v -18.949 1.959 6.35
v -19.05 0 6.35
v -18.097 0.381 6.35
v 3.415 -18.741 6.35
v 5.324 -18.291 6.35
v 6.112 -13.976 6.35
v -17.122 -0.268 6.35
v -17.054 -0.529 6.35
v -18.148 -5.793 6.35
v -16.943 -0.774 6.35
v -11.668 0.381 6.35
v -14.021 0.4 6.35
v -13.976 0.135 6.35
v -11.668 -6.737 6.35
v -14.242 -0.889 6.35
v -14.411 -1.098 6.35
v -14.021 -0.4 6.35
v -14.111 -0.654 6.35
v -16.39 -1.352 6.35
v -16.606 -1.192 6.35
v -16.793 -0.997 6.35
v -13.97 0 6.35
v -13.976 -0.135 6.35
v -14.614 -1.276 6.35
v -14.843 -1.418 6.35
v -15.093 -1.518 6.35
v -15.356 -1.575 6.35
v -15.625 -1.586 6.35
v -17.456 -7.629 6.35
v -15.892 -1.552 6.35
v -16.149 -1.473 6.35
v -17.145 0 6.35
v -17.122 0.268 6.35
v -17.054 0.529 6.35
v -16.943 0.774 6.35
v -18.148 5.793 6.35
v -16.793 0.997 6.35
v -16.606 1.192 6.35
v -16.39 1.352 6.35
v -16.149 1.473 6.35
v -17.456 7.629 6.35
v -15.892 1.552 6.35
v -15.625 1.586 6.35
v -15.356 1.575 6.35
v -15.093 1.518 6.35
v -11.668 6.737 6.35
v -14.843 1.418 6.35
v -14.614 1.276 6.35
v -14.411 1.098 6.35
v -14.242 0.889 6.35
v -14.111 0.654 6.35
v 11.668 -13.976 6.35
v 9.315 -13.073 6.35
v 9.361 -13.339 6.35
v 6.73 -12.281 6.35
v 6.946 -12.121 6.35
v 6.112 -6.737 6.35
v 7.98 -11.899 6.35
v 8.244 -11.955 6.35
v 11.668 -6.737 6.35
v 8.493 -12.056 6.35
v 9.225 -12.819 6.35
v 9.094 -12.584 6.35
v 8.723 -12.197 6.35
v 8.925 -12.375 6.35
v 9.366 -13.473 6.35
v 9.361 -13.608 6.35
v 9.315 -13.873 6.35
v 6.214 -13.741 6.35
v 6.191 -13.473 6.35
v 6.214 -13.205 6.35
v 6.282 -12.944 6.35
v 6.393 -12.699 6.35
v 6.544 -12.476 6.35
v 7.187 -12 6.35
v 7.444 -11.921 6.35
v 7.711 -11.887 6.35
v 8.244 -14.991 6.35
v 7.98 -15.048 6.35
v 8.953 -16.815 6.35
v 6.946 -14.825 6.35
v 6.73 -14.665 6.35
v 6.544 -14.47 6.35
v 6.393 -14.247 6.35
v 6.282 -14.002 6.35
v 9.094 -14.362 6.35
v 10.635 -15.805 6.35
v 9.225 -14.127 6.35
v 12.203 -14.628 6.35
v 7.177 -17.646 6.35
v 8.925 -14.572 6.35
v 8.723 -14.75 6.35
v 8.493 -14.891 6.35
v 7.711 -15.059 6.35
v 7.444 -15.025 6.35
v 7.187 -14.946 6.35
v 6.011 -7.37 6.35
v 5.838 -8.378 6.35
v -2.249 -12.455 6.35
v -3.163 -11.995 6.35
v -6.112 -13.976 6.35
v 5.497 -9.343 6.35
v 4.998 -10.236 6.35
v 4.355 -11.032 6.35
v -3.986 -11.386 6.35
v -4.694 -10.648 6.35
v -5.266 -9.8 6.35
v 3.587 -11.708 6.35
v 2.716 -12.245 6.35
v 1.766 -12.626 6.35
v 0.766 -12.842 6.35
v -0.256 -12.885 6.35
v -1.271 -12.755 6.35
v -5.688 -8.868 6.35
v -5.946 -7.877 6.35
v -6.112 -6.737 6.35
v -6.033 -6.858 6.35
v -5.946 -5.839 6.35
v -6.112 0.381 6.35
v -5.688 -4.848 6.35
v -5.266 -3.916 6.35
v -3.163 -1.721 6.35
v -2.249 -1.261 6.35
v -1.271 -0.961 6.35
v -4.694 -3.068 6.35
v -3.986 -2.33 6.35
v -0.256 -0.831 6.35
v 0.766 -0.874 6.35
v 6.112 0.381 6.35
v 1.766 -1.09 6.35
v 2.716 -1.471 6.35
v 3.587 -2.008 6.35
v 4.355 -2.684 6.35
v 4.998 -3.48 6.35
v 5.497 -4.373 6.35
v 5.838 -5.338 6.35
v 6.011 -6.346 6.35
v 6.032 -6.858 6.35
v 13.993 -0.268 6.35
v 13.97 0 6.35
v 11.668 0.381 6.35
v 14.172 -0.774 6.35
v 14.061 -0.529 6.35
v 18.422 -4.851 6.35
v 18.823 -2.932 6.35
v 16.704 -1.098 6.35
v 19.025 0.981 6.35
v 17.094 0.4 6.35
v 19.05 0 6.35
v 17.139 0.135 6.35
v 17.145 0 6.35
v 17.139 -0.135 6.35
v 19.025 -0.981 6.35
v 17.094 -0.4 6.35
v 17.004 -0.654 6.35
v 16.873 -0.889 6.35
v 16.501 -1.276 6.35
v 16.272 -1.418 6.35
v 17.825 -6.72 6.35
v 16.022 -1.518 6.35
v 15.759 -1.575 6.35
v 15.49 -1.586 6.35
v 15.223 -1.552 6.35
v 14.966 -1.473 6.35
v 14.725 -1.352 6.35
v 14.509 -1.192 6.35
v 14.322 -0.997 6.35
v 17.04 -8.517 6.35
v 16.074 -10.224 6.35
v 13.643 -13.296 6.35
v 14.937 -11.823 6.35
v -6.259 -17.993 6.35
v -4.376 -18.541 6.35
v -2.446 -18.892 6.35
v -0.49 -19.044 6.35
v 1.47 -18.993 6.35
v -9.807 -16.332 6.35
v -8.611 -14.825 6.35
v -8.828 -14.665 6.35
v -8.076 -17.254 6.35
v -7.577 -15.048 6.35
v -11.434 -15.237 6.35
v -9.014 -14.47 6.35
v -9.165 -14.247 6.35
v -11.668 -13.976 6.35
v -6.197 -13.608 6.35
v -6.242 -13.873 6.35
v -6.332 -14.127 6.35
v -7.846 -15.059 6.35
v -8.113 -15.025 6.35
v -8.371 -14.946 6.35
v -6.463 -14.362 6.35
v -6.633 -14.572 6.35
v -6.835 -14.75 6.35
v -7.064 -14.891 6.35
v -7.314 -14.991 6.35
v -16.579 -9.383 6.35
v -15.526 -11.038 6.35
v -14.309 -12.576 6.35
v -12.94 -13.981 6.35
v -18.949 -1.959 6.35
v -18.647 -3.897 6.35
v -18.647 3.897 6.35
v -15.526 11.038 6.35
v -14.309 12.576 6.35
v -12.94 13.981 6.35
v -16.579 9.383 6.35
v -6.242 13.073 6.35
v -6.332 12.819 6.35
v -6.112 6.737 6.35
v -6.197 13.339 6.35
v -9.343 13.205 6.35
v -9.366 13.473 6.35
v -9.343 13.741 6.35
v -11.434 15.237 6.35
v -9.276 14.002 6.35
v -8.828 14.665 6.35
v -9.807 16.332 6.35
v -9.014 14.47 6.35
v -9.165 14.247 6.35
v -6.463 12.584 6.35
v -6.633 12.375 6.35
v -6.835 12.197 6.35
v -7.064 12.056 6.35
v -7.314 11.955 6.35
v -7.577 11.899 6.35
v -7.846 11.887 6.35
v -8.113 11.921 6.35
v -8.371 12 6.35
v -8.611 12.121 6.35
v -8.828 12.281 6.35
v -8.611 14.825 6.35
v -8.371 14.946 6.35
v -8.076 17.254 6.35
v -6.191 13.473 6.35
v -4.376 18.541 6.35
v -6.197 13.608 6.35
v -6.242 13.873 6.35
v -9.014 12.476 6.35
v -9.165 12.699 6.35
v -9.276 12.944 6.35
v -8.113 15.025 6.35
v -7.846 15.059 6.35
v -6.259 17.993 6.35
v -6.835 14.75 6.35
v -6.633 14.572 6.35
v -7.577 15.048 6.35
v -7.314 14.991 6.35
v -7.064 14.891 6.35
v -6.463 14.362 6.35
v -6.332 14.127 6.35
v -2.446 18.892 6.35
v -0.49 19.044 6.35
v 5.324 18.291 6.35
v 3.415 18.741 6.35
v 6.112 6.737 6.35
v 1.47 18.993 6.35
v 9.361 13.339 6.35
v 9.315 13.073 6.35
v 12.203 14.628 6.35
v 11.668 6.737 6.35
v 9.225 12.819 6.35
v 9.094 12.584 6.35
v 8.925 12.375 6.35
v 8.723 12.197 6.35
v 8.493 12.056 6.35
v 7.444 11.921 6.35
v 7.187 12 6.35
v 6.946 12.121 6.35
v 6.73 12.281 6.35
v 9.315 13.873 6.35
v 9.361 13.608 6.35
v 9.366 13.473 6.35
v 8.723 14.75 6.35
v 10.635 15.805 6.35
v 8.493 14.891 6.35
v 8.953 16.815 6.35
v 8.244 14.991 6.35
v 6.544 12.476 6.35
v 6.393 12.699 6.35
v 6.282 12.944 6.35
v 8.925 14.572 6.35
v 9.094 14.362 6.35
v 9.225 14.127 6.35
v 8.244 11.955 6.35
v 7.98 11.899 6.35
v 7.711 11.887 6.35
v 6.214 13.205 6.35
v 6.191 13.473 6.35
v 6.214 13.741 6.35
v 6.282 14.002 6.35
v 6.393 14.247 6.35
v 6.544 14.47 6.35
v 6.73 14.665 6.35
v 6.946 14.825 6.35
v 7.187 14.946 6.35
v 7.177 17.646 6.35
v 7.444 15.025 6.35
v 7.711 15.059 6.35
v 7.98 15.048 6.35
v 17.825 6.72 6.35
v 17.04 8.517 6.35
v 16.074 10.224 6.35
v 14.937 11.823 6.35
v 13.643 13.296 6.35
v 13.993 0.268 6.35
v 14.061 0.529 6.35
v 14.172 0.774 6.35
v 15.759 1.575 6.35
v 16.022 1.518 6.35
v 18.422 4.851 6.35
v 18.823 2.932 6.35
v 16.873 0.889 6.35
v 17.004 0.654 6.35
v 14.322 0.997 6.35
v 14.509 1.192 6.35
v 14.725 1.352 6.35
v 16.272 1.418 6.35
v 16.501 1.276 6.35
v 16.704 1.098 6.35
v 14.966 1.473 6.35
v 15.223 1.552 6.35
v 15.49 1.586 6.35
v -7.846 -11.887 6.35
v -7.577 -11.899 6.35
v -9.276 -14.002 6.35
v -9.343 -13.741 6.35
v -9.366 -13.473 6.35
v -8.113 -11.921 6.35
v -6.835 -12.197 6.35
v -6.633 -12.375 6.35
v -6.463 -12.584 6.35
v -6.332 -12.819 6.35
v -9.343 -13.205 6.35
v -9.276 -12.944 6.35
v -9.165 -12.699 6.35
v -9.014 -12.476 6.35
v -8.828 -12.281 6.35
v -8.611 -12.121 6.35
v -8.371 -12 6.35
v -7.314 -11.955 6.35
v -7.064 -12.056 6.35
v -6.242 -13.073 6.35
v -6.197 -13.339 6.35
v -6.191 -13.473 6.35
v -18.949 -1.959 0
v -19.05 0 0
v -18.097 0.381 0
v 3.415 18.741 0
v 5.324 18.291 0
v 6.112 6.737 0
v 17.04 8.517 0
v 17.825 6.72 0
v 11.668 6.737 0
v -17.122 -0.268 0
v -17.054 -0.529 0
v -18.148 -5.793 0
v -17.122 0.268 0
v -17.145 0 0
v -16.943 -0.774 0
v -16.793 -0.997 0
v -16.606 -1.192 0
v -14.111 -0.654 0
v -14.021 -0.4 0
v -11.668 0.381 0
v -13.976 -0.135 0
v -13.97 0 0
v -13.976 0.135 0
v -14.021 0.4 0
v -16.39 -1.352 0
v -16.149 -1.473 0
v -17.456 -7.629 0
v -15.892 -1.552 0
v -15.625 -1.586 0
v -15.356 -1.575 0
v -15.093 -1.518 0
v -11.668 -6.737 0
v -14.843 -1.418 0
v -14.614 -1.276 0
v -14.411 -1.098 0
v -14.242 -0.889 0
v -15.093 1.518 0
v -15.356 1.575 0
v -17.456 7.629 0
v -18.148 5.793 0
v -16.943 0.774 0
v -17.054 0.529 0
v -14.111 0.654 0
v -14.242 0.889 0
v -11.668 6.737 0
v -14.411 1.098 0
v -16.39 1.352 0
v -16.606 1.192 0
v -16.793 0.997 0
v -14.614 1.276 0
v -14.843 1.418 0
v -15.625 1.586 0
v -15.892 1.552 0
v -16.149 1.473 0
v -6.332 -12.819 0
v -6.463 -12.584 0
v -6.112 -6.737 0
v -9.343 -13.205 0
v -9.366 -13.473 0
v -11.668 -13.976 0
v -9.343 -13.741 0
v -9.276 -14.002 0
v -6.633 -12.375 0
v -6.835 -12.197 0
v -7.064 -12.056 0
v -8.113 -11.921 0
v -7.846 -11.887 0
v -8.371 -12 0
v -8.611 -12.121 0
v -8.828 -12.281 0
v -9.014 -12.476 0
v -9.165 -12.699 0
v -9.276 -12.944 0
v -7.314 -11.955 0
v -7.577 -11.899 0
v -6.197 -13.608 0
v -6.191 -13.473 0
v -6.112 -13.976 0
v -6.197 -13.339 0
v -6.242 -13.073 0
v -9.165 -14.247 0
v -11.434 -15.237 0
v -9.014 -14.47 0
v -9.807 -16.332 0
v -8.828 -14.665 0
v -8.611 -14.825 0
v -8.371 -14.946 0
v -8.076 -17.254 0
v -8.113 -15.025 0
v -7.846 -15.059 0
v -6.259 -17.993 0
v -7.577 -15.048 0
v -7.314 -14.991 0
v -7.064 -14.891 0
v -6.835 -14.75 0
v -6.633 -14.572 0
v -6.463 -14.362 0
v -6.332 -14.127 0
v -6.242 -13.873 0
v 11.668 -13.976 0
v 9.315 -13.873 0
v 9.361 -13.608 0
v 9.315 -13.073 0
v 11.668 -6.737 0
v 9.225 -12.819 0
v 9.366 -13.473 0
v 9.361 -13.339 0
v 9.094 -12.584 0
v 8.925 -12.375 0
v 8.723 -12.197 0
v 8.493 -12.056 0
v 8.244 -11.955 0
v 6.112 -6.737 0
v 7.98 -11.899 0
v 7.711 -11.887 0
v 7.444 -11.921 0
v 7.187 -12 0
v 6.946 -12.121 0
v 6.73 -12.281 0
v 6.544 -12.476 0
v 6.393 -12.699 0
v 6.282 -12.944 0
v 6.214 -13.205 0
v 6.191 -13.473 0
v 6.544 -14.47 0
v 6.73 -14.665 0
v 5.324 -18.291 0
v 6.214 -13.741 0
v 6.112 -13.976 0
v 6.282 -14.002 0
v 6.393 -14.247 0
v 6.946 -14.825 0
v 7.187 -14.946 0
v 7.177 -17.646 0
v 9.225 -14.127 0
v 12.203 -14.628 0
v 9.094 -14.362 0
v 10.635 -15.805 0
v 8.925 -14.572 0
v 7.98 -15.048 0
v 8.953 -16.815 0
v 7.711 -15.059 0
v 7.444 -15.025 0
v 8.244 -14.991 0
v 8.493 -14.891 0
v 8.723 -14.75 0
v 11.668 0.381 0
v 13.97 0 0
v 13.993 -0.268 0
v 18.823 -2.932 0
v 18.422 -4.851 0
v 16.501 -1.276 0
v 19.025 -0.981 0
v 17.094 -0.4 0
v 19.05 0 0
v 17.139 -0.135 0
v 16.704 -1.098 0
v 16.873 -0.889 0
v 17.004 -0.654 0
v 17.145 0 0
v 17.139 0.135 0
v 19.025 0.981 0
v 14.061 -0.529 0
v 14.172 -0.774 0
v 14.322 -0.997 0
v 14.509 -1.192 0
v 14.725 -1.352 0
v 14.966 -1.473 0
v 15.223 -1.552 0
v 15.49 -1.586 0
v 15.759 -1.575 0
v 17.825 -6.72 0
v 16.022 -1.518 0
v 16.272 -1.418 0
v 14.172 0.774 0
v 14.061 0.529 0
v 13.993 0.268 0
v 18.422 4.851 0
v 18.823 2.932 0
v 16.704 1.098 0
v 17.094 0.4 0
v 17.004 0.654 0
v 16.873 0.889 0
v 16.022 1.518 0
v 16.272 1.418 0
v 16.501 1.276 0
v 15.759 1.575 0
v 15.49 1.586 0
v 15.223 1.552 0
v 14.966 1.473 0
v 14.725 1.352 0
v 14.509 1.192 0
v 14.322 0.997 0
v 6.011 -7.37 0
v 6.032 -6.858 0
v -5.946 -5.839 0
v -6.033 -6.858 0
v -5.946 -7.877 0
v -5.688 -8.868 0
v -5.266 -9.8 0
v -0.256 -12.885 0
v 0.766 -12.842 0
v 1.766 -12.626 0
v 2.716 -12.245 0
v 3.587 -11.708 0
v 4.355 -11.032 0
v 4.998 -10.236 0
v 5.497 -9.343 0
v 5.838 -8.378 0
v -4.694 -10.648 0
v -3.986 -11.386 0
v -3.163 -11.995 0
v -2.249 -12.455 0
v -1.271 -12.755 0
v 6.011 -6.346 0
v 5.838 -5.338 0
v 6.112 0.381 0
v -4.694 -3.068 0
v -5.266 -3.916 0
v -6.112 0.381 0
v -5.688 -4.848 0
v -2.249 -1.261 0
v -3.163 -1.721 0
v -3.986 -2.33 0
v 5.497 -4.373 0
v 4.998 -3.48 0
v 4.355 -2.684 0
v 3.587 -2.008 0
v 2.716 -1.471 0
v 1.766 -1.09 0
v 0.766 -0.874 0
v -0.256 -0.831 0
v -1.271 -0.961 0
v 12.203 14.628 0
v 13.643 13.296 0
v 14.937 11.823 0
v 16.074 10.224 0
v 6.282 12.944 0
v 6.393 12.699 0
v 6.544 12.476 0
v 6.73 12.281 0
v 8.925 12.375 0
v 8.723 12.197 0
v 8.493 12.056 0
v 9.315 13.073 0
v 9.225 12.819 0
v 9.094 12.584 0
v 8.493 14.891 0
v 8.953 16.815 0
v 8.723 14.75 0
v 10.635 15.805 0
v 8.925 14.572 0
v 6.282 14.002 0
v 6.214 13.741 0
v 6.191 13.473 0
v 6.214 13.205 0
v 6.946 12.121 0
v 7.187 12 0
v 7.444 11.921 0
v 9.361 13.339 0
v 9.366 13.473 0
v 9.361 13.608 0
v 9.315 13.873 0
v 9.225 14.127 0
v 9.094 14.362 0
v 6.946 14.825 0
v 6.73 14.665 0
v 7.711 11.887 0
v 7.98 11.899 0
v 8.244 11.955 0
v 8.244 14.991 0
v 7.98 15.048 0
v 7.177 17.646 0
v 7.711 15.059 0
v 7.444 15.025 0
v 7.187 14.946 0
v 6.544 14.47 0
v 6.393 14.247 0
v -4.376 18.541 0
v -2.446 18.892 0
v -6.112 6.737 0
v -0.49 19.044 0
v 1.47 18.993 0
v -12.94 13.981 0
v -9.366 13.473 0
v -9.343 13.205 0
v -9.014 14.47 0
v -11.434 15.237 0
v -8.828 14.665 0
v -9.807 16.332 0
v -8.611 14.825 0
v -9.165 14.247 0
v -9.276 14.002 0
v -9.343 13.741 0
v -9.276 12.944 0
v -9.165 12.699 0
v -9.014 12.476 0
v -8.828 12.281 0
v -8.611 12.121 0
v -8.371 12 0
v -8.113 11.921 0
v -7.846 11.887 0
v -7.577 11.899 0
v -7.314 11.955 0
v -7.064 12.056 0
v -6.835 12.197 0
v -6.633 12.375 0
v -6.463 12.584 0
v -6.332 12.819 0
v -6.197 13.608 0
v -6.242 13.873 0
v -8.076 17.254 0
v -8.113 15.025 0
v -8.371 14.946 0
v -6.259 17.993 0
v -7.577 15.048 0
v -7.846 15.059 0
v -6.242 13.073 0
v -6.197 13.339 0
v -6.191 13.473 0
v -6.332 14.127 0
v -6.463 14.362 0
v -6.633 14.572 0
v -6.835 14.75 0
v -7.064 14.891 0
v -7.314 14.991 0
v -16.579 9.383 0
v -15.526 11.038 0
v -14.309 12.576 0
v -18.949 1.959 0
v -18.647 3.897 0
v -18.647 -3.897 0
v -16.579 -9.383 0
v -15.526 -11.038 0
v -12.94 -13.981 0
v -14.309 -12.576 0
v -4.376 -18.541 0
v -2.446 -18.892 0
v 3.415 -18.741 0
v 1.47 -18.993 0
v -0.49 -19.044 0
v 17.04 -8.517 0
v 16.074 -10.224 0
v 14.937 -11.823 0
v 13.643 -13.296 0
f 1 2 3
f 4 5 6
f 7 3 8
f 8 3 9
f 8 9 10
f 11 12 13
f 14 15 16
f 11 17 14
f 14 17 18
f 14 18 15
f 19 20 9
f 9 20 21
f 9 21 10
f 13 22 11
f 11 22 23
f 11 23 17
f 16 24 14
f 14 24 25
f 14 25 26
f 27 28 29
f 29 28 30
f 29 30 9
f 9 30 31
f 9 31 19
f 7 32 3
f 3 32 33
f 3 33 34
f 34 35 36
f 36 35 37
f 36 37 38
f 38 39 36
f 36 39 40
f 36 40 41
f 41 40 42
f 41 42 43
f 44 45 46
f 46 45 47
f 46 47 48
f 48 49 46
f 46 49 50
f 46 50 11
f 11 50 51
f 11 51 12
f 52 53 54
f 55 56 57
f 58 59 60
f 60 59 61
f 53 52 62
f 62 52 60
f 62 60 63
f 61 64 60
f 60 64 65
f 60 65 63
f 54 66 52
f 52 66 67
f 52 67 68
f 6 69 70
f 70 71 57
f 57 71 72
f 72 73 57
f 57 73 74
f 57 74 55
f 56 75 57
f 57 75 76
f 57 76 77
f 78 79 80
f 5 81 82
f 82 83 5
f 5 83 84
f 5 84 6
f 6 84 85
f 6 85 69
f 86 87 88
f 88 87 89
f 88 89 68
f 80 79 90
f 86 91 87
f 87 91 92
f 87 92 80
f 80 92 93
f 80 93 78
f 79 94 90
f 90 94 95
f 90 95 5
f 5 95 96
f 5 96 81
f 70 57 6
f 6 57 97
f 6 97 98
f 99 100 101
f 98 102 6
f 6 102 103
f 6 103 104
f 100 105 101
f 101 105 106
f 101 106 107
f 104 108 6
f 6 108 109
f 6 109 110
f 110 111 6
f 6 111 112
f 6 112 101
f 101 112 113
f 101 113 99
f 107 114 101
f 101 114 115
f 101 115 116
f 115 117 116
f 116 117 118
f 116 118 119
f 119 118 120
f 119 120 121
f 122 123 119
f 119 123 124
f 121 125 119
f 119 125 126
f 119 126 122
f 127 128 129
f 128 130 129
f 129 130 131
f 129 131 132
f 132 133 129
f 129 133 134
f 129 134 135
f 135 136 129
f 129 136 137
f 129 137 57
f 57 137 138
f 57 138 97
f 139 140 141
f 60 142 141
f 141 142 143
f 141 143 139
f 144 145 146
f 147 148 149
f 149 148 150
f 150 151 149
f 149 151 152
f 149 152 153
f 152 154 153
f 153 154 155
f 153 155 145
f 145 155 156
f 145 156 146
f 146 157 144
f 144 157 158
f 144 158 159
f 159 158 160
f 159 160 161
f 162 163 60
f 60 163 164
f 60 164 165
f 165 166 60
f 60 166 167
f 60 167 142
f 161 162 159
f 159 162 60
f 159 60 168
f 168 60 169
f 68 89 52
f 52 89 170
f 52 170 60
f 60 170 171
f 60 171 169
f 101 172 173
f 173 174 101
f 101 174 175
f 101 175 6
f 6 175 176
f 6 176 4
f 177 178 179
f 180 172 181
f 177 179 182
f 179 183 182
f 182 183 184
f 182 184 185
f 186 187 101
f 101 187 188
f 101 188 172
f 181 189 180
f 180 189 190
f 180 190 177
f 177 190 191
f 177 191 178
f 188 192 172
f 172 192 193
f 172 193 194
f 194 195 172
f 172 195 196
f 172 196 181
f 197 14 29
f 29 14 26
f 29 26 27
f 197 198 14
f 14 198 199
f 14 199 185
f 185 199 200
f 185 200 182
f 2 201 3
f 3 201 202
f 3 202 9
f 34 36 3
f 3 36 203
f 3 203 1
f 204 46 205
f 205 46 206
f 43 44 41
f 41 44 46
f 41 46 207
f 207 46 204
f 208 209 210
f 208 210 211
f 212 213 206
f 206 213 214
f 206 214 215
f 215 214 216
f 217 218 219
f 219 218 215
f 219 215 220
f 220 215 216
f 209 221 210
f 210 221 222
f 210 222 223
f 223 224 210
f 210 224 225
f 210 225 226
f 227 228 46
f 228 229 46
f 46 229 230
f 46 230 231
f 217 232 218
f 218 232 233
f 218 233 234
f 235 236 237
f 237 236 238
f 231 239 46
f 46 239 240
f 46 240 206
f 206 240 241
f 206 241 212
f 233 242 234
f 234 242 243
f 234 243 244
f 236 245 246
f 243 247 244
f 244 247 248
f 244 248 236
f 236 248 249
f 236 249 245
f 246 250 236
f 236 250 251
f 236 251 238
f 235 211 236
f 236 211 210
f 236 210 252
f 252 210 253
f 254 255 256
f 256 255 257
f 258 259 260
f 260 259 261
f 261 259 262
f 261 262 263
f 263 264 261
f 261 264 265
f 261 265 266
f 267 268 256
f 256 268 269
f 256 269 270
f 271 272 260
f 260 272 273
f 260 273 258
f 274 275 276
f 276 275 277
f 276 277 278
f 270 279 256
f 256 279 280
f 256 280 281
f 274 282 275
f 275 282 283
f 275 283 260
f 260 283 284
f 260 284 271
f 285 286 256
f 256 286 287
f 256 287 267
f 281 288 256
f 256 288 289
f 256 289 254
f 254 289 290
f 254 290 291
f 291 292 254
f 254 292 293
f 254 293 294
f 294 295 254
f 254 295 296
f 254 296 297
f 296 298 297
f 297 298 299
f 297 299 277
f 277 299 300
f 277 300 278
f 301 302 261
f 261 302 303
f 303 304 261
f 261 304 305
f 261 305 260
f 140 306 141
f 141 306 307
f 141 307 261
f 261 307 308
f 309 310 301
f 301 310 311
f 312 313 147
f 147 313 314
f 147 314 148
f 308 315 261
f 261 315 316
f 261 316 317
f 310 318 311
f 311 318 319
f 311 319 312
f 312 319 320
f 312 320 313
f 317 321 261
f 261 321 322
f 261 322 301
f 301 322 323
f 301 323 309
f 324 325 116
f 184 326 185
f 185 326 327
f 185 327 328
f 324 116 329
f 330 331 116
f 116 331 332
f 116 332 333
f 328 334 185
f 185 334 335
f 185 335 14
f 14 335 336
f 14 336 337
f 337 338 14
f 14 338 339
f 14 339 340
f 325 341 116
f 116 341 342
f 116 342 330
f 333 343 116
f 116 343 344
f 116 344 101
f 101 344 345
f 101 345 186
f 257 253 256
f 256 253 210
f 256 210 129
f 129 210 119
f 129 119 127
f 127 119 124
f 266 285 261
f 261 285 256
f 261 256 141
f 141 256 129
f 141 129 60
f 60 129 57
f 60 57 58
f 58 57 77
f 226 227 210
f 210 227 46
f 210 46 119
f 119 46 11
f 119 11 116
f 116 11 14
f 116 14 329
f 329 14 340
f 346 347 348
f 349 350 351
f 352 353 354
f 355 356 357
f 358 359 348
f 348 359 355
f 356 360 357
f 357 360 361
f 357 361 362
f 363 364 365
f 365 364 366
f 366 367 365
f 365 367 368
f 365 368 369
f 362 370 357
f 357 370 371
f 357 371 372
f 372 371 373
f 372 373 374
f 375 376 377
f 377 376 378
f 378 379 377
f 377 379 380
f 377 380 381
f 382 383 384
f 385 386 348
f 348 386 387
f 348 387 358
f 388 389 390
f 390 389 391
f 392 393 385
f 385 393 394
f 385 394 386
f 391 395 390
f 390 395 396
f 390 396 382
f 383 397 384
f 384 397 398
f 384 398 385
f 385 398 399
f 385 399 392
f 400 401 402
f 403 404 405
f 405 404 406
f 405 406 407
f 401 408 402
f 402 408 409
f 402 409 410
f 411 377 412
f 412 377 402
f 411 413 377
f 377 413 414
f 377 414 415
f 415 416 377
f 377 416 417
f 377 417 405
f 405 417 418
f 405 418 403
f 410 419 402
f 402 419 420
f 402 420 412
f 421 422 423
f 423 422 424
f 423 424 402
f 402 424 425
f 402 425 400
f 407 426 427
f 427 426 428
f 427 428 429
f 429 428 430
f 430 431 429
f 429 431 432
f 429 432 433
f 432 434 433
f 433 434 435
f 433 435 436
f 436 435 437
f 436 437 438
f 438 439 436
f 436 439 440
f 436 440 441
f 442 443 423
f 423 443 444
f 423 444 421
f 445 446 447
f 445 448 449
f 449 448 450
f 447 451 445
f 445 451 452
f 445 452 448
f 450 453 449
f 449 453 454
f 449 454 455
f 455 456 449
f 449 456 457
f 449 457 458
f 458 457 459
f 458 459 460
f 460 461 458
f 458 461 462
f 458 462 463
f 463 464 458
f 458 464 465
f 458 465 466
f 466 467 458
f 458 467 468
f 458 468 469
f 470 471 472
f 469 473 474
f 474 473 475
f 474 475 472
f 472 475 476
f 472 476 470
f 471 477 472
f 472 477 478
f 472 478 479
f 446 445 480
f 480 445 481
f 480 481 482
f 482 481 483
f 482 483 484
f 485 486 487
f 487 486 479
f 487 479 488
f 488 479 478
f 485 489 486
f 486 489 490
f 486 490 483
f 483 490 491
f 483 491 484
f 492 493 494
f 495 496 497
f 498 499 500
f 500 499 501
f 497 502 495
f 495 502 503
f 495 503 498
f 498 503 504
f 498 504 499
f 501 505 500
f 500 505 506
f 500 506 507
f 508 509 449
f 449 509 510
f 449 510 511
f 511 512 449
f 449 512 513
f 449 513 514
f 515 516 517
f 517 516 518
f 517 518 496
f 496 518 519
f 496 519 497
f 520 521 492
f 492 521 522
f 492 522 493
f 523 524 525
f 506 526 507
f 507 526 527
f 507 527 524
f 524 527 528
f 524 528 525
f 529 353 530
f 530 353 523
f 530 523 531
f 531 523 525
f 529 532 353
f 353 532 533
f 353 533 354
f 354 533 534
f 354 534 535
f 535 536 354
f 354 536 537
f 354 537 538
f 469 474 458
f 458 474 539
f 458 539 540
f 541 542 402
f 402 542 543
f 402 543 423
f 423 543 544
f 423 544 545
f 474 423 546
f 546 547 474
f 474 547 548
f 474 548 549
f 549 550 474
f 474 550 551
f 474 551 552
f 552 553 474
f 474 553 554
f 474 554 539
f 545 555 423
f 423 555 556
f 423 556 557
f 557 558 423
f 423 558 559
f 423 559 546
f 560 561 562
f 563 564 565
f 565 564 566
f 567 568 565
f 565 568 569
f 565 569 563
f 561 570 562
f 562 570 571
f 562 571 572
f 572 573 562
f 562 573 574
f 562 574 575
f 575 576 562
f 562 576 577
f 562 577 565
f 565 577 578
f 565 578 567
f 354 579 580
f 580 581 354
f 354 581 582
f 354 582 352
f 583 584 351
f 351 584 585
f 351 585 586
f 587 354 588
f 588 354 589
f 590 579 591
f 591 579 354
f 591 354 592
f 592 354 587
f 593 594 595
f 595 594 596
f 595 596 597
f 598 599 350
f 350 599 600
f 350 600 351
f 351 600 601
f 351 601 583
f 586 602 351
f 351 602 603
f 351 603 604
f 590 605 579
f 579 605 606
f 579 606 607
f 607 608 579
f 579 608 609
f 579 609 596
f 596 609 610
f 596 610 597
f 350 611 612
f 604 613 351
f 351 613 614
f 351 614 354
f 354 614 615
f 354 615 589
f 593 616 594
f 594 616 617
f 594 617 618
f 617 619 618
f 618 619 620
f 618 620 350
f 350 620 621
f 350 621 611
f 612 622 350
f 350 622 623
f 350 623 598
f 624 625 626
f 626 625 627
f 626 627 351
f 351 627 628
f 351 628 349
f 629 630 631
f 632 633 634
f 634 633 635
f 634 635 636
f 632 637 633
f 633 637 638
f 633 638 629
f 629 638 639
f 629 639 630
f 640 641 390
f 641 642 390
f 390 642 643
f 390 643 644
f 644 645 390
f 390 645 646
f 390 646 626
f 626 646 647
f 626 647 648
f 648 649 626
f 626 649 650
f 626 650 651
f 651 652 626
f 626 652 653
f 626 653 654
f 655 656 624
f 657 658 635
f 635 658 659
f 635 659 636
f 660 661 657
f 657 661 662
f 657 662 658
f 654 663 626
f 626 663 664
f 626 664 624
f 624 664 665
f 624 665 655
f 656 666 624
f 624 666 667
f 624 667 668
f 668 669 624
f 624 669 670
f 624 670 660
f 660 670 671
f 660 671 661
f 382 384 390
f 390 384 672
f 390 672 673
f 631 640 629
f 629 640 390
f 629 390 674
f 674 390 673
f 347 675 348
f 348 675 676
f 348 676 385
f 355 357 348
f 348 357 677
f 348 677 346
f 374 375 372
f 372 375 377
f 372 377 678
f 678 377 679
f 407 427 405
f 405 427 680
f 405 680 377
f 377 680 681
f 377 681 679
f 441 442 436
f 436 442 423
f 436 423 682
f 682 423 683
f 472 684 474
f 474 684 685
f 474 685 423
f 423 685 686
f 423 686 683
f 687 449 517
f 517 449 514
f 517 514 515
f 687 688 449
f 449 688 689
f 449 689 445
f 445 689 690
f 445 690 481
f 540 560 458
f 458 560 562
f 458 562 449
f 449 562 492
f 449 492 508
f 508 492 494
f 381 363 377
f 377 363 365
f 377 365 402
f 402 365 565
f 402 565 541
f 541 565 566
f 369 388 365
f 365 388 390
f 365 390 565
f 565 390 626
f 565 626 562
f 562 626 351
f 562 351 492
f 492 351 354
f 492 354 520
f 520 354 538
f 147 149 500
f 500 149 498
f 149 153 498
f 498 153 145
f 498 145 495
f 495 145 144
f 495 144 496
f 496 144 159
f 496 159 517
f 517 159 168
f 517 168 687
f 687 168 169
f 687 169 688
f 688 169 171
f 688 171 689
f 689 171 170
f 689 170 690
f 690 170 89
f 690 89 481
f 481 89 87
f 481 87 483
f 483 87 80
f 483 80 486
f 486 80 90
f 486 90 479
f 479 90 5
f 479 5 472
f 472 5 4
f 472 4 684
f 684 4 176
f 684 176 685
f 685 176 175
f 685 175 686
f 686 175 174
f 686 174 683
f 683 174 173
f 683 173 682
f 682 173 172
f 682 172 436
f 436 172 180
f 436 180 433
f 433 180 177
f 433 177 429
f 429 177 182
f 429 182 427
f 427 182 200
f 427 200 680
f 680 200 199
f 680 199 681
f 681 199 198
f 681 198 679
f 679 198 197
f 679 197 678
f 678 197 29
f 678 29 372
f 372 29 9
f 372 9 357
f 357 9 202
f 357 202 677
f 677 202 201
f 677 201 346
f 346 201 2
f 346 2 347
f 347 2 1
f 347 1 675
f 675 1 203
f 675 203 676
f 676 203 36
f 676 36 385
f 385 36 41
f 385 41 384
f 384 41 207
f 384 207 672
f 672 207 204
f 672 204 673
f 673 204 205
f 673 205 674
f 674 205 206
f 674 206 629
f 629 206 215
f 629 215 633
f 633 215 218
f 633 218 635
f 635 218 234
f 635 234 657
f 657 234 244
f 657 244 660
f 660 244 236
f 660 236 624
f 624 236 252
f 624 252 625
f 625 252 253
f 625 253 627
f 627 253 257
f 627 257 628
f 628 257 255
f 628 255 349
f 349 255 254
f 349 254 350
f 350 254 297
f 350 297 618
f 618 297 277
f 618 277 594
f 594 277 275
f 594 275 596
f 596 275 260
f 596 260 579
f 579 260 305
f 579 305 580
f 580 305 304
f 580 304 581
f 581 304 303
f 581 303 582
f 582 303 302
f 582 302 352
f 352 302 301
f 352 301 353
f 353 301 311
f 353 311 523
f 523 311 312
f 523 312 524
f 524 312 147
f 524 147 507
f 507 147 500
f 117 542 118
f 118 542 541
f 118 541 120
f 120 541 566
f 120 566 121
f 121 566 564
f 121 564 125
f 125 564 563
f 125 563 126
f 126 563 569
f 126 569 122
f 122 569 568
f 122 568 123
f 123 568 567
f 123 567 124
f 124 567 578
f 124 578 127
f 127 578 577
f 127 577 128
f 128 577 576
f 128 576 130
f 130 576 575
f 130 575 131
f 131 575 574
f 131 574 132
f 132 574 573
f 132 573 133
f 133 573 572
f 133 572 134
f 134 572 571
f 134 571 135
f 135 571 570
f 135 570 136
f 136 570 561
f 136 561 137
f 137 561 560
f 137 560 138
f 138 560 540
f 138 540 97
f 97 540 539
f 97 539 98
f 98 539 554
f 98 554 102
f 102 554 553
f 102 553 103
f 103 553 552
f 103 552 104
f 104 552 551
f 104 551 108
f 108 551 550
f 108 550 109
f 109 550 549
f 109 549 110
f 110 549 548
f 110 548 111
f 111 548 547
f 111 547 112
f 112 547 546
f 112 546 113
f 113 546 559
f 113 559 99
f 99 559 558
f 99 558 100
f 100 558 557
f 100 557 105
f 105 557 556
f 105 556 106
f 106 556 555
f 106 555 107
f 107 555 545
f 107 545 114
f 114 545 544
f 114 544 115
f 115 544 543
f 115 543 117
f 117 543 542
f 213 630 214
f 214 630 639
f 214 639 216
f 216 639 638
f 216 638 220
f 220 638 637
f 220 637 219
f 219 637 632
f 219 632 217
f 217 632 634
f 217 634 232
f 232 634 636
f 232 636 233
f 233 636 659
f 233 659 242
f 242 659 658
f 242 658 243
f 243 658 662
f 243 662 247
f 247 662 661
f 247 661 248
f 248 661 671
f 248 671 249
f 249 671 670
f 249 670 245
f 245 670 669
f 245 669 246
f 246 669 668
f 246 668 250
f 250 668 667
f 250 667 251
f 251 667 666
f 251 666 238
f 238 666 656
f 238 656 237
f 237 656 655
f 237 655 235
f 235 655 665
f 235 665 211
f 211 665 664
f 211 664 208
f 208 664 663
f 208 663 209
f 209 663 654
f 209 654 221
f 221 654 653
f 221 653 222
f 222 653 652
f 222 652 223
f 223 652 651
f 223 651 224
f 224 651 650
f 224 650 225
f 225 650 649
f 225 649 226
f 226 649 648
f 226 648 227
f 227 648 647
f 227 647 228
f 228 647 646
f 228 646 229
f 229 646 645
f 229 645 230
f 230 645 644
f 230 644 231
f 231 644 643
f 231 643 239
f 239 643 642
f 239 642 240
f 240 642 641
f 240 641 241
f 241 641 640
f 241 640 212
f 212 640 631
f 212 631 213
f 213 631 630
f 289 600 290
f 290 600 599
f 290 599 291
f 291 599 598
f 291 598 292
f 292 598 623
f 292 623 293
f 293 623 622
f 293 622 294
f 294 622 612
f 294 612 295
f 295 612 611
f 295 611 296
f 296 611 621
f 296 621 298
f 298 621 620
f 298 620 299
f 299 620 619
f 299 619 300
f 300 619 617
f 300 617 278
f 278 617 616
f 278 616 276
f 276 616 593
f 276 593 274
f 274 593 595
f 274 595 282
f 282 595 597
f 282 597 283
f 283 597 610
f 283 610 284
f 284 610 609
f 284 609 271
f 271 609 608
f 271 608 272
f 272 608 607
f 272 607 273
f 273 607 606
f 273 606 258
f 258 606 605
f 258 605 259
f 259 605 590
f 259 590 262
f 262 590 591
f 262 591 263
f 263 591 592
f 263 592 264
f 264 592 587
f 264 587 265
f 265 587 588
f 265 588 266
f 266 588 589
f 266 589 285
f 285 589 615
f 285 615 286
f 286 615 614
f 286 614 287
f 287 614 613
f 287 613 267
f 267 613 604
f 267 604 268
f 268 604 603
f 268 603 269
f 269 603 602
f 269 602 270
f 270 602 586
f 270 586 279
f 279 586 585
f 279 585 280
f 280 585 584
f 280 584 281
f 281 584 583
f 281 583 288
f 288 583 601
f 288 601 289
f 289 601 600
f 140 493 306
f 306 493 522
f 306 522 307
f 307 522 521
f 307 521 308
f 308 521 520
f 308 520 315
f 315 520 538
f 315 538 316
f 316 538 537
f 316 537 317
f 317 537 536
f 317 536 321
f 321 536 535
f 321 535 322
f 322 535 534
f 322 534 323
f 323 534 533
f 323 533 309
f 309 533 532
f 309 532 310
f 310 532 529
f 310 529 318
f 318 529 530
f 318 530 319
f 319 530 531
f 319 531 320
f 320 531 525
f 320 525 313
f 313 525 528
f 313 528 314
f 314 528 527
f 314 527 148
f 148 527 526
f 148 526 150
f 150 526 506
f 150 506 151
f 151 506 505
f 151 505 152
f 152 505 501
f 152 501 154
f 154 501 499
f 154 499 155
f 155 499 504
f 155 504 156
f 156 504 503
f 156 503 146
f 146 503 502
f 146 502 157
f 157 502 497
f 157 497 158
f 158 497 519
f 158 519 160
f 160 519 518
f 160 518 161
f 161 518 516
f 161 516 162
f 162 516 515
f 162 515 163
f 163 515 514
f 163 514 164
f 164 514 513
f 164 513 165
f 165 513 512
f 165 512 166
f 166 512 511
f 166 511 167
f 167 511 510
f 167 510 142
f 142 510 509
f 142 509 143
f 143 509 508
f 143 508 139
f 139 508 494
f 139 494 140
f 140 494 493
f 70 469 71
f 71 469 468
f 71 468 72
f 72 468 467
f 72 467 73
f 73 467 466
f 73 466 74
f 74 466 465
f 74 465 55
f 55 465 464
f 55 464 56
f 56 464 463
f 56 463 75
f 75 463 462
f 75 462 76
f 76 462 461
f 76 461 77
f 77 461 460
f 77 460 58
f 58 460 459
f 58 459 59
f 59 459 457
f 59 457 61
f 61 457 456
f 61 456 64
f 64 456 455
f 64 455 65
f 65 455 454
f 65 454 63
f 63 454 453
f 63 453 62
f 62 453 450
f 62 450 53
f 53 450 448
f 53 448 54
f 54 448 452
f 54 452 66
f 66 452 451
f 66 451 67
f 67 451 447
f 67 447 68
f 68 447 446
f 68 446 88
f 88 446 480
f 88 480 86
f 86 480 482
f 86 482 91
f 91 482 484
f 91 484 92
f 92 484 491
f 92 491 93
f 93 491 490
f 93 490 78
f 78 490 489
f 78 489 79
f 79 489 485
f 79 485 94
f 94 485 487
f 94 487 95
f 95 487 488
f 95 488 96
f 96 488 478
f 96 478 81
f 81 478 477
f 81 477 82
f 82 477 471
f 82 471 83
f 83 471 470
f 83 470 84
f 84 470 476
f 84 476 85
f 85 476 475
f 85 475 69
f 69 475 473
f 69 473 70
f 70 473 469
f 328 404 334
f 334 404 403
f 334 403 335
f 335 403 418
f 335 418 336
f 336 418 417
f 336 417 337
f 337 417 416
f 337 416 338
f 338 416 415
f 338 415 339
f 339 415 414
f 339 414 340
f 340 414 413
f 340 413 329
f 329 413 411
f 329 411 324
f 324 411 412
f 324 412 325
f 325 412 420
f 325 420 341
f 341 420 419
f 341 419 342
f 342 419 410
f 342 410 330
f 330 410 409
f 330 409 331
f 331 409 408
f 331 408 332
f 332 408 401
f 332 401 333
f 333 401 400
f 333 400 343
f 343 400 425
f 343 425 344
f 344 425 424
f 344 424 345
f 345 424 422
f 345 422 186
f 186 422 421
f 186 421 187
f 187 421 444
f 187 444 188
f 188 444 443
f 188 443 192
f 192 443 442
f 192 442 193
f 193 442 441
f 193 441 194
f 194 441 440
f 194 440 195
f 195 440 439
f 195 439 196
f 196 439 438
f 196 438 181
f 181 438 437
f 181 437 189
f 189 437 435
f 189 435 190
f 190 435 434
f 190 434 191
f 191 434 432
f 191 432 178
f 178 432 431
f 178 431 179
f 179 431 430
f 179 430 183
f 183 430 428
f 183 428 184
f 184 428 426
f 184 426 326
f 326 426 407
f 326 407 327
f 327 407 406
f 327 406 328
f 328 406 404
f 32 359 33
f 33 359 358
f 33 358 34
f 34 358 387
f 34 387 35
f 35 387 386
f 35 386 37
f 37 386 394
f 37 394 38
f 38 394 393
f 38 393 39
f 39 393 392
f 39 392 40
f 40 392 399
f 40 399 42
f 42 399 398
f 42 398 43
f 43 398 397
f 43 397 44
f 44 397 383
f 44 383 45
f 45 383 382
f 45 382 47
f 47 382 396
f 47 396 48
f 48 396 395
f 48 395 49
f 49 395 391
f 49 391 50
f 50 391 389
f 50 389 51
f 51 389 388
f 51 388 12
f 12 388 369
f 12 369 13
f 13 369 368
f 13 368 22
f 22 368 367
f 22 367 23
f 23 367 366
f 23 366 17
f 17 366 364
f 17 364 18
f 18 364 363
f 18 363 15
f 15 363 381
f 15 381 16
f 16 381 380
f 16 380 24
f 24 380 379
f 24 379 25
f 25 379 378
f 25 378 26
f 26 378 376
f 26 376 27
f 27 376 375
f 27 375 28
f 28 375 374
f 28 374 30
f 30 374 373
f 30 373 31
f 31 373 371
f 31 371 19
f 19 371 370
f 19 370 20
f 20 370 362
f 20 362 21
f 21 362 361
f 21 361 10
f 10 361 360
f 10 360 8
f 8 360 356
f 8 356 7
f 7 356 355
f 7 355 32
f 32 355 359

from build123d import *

# Parameters (mm, degrees)
SKETCH1_R           = 19.05
SKETCH1_R_2         = 6.0325
SKETCH1_R_3         = 1.5875
BOSS_EXTRUDE1_DEPTH = 6.35


with BuildPart() as part:
    # Sketch1 → Boss-Extrude1 (new body)
    with BuildSketch(Plane.XY):
        Circle(SKETCH1_R)
        with Locations((0, -6.858)):
            Circle(SKETCH1_R_2, mode=Mode.SUBTRACT)
        with Locations((-7.77875, 13.473190219)):
            Circle(SKETCH1_R_3, mode=Mode.SUBTRACT)
        with Locations((7.77875, 13.473190219)):
            Circle(SKETCH1_R_3, mode=Mode.SUBTRACT)
        with Locations((15.5575, 0)):
            Circle(SKETCH1_R_3, mode=Mode.SUBTRACT)
        with Locations((7.77875, -13.473190219)):
            Circle(SKETCH1_R_3, mode=Mode.SUBTRACT)
        with Locations((-7.77875, -13.473190219)):
            Circle(SKETCH1_R_3, mode=Mode.SUBTRACT)
        with Locations((-15.5575, 0)):
            Circle(SKETCH1_R_3, mode=Mode.SUBTRACT)
    extrude(amount=BOSS_EXTRUDE1_DEPTH)


solid = part.part
